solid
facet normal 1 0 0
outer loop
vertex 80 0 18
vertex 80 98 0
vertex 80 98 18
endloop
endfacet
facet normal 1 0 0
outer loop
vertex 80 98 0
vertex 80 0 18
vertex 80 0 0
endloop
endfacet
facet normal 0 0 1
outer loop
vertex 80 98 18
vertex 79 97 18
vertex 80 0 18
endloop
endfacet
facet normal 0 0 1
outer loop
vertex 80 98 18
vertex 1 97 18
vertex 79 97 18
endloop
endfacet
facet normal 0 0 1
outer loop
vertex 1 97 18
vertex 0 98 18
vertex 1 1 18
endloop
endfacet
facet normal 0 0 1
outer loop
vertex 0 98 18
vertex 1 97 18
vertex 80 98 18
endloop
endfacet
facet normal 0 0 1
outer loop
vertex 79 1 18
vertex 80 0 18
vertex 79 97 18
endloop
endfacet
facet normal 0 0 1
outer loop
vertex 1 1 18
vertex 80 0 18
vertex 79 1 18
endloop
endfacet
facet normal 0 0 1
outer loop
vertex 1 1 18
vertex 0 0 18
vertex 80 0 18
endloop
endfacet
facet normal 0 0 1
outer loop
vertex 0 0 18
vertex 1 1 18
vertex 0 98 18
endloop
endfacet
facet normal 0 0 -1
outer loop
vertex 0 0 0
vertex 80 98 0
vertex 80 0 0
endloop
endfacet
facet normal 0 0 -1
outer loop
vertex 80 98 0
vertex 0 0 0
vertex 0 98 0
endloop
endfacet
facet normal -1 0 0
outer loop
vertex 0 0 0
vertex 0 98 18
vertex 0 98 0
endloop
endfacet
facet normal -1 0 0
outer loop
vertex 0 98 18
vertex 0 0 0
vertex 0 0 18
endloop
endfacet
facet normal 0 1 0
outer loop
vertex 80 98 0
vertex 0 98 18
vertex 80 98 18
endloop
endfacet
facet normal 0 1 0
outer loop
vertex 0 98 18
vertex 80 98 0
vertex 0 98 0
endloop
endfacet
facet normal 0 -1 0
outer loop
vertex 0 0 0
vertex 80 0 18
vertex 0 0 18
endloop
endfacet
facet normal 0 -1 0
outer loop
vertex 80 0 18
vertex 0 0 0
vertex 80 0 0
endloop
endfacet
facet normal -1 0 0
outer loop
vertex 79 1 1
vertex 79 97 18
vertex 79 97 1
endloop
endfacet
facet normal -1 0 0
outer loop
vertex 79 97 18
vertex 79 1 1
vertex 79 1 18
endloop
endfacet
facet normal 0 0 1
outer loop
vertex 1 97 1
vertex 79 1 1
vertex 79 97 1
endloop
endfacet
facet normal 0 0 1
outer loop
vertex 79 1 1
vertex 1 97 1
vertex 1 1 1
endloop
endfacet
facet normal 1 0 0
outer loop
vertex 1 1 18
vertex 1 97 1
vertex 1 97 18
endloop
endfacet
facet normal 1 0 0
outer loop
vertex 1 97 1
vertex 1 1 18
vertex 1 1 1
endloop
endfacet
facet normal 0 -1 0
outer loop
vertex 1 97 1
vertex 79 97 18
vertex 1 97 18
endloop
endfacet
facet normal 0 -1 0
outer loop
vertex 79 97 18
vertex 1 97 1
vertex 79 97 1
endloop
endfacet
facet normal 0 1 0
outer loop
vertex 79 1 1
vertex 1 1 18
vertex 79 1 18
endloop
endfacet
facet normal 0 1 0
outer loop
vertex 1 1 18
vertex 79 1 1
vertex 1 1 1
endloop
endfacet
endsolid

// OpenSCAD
include <boardgame_insert_toolkit_lib.2.scad>;

// determines whether lids are output.
g_b_print_lid = true;

// determines whether boxes are output.
g_b_print_box = true; 

// Focus on one box
g_isolated_print_box = ""; 

// Used to visualize how all of the boxes fit together. 
g_b_visualization = false;          
        
// this is the outer wall thickness. 
//Default = 1.5mm
g_wall_thickness = 1.0;

// The tolerance value is extra space put between planes of the lid and box that fit together.
// Increase the tolerance to loosen the fit and decrease it to tighten it.
//
// Note that the tolerance is applied exclusively to the lid.
// So if the lid is too tight or too loose, change this value ( up for looser fit, down for tighter fit ) and 
// you only need to reprint the lid.
// 
// The exception is the stackable box, where the bottom of the box is the lid of the box below,
// in which case the tolerance also affects that box bottom.
//
g_tolerance = 0.15;

// This adjusts the position of the lid detents downward. 
// The larger the value, the bigger the gap between the lid and the box.
g_tolerance_detents_pos = 0.1;

aw_size_x = 80.0;
aw_size_y = 98.0;
aw_size_z = 18.0;


data =
  [
    [
      "simple box",
      [
        [ BOX_SIZE_XYZ, [aw_size_x, aw_size_y, aw_size_z] ],
        [ BOX_NO_LID_B, t],
        [
          BOX_COMPONENT,
          [
            [
              CMP_COMPARTMENT_SIZE_XYZ,
              [
                (aw_size_x - 2.0),
                (aw_size_y - 2.0),
                aw_size_z - g_wall_thickness
              ]
            ],
            [ CMP_NUM_COMPARTMENTS_XY, [1, 1] ],
            [ POSITION_XY, [0, 0] ],
            [ CMP_CUTOUT_SIDES_4B,   [f,f,f,f]],
            //[ CMP_CUTOUT_DEPTH_PCT,  20],
            //[ CMP_CUTOUT_WIDTH_PCT,  50],
            //[ CMP_CUTOUT_HEIGHT_PCT, 100], 
            //[ CMP_SHAPE_ROTATED_B, t ],
            //[ CMP_SHAPE, FILLET ],
            //[ CMP_FILLET_RADIUS, 5.0 ],
          ]
        ],
      ]
    ]
  ];

MakeAll();
